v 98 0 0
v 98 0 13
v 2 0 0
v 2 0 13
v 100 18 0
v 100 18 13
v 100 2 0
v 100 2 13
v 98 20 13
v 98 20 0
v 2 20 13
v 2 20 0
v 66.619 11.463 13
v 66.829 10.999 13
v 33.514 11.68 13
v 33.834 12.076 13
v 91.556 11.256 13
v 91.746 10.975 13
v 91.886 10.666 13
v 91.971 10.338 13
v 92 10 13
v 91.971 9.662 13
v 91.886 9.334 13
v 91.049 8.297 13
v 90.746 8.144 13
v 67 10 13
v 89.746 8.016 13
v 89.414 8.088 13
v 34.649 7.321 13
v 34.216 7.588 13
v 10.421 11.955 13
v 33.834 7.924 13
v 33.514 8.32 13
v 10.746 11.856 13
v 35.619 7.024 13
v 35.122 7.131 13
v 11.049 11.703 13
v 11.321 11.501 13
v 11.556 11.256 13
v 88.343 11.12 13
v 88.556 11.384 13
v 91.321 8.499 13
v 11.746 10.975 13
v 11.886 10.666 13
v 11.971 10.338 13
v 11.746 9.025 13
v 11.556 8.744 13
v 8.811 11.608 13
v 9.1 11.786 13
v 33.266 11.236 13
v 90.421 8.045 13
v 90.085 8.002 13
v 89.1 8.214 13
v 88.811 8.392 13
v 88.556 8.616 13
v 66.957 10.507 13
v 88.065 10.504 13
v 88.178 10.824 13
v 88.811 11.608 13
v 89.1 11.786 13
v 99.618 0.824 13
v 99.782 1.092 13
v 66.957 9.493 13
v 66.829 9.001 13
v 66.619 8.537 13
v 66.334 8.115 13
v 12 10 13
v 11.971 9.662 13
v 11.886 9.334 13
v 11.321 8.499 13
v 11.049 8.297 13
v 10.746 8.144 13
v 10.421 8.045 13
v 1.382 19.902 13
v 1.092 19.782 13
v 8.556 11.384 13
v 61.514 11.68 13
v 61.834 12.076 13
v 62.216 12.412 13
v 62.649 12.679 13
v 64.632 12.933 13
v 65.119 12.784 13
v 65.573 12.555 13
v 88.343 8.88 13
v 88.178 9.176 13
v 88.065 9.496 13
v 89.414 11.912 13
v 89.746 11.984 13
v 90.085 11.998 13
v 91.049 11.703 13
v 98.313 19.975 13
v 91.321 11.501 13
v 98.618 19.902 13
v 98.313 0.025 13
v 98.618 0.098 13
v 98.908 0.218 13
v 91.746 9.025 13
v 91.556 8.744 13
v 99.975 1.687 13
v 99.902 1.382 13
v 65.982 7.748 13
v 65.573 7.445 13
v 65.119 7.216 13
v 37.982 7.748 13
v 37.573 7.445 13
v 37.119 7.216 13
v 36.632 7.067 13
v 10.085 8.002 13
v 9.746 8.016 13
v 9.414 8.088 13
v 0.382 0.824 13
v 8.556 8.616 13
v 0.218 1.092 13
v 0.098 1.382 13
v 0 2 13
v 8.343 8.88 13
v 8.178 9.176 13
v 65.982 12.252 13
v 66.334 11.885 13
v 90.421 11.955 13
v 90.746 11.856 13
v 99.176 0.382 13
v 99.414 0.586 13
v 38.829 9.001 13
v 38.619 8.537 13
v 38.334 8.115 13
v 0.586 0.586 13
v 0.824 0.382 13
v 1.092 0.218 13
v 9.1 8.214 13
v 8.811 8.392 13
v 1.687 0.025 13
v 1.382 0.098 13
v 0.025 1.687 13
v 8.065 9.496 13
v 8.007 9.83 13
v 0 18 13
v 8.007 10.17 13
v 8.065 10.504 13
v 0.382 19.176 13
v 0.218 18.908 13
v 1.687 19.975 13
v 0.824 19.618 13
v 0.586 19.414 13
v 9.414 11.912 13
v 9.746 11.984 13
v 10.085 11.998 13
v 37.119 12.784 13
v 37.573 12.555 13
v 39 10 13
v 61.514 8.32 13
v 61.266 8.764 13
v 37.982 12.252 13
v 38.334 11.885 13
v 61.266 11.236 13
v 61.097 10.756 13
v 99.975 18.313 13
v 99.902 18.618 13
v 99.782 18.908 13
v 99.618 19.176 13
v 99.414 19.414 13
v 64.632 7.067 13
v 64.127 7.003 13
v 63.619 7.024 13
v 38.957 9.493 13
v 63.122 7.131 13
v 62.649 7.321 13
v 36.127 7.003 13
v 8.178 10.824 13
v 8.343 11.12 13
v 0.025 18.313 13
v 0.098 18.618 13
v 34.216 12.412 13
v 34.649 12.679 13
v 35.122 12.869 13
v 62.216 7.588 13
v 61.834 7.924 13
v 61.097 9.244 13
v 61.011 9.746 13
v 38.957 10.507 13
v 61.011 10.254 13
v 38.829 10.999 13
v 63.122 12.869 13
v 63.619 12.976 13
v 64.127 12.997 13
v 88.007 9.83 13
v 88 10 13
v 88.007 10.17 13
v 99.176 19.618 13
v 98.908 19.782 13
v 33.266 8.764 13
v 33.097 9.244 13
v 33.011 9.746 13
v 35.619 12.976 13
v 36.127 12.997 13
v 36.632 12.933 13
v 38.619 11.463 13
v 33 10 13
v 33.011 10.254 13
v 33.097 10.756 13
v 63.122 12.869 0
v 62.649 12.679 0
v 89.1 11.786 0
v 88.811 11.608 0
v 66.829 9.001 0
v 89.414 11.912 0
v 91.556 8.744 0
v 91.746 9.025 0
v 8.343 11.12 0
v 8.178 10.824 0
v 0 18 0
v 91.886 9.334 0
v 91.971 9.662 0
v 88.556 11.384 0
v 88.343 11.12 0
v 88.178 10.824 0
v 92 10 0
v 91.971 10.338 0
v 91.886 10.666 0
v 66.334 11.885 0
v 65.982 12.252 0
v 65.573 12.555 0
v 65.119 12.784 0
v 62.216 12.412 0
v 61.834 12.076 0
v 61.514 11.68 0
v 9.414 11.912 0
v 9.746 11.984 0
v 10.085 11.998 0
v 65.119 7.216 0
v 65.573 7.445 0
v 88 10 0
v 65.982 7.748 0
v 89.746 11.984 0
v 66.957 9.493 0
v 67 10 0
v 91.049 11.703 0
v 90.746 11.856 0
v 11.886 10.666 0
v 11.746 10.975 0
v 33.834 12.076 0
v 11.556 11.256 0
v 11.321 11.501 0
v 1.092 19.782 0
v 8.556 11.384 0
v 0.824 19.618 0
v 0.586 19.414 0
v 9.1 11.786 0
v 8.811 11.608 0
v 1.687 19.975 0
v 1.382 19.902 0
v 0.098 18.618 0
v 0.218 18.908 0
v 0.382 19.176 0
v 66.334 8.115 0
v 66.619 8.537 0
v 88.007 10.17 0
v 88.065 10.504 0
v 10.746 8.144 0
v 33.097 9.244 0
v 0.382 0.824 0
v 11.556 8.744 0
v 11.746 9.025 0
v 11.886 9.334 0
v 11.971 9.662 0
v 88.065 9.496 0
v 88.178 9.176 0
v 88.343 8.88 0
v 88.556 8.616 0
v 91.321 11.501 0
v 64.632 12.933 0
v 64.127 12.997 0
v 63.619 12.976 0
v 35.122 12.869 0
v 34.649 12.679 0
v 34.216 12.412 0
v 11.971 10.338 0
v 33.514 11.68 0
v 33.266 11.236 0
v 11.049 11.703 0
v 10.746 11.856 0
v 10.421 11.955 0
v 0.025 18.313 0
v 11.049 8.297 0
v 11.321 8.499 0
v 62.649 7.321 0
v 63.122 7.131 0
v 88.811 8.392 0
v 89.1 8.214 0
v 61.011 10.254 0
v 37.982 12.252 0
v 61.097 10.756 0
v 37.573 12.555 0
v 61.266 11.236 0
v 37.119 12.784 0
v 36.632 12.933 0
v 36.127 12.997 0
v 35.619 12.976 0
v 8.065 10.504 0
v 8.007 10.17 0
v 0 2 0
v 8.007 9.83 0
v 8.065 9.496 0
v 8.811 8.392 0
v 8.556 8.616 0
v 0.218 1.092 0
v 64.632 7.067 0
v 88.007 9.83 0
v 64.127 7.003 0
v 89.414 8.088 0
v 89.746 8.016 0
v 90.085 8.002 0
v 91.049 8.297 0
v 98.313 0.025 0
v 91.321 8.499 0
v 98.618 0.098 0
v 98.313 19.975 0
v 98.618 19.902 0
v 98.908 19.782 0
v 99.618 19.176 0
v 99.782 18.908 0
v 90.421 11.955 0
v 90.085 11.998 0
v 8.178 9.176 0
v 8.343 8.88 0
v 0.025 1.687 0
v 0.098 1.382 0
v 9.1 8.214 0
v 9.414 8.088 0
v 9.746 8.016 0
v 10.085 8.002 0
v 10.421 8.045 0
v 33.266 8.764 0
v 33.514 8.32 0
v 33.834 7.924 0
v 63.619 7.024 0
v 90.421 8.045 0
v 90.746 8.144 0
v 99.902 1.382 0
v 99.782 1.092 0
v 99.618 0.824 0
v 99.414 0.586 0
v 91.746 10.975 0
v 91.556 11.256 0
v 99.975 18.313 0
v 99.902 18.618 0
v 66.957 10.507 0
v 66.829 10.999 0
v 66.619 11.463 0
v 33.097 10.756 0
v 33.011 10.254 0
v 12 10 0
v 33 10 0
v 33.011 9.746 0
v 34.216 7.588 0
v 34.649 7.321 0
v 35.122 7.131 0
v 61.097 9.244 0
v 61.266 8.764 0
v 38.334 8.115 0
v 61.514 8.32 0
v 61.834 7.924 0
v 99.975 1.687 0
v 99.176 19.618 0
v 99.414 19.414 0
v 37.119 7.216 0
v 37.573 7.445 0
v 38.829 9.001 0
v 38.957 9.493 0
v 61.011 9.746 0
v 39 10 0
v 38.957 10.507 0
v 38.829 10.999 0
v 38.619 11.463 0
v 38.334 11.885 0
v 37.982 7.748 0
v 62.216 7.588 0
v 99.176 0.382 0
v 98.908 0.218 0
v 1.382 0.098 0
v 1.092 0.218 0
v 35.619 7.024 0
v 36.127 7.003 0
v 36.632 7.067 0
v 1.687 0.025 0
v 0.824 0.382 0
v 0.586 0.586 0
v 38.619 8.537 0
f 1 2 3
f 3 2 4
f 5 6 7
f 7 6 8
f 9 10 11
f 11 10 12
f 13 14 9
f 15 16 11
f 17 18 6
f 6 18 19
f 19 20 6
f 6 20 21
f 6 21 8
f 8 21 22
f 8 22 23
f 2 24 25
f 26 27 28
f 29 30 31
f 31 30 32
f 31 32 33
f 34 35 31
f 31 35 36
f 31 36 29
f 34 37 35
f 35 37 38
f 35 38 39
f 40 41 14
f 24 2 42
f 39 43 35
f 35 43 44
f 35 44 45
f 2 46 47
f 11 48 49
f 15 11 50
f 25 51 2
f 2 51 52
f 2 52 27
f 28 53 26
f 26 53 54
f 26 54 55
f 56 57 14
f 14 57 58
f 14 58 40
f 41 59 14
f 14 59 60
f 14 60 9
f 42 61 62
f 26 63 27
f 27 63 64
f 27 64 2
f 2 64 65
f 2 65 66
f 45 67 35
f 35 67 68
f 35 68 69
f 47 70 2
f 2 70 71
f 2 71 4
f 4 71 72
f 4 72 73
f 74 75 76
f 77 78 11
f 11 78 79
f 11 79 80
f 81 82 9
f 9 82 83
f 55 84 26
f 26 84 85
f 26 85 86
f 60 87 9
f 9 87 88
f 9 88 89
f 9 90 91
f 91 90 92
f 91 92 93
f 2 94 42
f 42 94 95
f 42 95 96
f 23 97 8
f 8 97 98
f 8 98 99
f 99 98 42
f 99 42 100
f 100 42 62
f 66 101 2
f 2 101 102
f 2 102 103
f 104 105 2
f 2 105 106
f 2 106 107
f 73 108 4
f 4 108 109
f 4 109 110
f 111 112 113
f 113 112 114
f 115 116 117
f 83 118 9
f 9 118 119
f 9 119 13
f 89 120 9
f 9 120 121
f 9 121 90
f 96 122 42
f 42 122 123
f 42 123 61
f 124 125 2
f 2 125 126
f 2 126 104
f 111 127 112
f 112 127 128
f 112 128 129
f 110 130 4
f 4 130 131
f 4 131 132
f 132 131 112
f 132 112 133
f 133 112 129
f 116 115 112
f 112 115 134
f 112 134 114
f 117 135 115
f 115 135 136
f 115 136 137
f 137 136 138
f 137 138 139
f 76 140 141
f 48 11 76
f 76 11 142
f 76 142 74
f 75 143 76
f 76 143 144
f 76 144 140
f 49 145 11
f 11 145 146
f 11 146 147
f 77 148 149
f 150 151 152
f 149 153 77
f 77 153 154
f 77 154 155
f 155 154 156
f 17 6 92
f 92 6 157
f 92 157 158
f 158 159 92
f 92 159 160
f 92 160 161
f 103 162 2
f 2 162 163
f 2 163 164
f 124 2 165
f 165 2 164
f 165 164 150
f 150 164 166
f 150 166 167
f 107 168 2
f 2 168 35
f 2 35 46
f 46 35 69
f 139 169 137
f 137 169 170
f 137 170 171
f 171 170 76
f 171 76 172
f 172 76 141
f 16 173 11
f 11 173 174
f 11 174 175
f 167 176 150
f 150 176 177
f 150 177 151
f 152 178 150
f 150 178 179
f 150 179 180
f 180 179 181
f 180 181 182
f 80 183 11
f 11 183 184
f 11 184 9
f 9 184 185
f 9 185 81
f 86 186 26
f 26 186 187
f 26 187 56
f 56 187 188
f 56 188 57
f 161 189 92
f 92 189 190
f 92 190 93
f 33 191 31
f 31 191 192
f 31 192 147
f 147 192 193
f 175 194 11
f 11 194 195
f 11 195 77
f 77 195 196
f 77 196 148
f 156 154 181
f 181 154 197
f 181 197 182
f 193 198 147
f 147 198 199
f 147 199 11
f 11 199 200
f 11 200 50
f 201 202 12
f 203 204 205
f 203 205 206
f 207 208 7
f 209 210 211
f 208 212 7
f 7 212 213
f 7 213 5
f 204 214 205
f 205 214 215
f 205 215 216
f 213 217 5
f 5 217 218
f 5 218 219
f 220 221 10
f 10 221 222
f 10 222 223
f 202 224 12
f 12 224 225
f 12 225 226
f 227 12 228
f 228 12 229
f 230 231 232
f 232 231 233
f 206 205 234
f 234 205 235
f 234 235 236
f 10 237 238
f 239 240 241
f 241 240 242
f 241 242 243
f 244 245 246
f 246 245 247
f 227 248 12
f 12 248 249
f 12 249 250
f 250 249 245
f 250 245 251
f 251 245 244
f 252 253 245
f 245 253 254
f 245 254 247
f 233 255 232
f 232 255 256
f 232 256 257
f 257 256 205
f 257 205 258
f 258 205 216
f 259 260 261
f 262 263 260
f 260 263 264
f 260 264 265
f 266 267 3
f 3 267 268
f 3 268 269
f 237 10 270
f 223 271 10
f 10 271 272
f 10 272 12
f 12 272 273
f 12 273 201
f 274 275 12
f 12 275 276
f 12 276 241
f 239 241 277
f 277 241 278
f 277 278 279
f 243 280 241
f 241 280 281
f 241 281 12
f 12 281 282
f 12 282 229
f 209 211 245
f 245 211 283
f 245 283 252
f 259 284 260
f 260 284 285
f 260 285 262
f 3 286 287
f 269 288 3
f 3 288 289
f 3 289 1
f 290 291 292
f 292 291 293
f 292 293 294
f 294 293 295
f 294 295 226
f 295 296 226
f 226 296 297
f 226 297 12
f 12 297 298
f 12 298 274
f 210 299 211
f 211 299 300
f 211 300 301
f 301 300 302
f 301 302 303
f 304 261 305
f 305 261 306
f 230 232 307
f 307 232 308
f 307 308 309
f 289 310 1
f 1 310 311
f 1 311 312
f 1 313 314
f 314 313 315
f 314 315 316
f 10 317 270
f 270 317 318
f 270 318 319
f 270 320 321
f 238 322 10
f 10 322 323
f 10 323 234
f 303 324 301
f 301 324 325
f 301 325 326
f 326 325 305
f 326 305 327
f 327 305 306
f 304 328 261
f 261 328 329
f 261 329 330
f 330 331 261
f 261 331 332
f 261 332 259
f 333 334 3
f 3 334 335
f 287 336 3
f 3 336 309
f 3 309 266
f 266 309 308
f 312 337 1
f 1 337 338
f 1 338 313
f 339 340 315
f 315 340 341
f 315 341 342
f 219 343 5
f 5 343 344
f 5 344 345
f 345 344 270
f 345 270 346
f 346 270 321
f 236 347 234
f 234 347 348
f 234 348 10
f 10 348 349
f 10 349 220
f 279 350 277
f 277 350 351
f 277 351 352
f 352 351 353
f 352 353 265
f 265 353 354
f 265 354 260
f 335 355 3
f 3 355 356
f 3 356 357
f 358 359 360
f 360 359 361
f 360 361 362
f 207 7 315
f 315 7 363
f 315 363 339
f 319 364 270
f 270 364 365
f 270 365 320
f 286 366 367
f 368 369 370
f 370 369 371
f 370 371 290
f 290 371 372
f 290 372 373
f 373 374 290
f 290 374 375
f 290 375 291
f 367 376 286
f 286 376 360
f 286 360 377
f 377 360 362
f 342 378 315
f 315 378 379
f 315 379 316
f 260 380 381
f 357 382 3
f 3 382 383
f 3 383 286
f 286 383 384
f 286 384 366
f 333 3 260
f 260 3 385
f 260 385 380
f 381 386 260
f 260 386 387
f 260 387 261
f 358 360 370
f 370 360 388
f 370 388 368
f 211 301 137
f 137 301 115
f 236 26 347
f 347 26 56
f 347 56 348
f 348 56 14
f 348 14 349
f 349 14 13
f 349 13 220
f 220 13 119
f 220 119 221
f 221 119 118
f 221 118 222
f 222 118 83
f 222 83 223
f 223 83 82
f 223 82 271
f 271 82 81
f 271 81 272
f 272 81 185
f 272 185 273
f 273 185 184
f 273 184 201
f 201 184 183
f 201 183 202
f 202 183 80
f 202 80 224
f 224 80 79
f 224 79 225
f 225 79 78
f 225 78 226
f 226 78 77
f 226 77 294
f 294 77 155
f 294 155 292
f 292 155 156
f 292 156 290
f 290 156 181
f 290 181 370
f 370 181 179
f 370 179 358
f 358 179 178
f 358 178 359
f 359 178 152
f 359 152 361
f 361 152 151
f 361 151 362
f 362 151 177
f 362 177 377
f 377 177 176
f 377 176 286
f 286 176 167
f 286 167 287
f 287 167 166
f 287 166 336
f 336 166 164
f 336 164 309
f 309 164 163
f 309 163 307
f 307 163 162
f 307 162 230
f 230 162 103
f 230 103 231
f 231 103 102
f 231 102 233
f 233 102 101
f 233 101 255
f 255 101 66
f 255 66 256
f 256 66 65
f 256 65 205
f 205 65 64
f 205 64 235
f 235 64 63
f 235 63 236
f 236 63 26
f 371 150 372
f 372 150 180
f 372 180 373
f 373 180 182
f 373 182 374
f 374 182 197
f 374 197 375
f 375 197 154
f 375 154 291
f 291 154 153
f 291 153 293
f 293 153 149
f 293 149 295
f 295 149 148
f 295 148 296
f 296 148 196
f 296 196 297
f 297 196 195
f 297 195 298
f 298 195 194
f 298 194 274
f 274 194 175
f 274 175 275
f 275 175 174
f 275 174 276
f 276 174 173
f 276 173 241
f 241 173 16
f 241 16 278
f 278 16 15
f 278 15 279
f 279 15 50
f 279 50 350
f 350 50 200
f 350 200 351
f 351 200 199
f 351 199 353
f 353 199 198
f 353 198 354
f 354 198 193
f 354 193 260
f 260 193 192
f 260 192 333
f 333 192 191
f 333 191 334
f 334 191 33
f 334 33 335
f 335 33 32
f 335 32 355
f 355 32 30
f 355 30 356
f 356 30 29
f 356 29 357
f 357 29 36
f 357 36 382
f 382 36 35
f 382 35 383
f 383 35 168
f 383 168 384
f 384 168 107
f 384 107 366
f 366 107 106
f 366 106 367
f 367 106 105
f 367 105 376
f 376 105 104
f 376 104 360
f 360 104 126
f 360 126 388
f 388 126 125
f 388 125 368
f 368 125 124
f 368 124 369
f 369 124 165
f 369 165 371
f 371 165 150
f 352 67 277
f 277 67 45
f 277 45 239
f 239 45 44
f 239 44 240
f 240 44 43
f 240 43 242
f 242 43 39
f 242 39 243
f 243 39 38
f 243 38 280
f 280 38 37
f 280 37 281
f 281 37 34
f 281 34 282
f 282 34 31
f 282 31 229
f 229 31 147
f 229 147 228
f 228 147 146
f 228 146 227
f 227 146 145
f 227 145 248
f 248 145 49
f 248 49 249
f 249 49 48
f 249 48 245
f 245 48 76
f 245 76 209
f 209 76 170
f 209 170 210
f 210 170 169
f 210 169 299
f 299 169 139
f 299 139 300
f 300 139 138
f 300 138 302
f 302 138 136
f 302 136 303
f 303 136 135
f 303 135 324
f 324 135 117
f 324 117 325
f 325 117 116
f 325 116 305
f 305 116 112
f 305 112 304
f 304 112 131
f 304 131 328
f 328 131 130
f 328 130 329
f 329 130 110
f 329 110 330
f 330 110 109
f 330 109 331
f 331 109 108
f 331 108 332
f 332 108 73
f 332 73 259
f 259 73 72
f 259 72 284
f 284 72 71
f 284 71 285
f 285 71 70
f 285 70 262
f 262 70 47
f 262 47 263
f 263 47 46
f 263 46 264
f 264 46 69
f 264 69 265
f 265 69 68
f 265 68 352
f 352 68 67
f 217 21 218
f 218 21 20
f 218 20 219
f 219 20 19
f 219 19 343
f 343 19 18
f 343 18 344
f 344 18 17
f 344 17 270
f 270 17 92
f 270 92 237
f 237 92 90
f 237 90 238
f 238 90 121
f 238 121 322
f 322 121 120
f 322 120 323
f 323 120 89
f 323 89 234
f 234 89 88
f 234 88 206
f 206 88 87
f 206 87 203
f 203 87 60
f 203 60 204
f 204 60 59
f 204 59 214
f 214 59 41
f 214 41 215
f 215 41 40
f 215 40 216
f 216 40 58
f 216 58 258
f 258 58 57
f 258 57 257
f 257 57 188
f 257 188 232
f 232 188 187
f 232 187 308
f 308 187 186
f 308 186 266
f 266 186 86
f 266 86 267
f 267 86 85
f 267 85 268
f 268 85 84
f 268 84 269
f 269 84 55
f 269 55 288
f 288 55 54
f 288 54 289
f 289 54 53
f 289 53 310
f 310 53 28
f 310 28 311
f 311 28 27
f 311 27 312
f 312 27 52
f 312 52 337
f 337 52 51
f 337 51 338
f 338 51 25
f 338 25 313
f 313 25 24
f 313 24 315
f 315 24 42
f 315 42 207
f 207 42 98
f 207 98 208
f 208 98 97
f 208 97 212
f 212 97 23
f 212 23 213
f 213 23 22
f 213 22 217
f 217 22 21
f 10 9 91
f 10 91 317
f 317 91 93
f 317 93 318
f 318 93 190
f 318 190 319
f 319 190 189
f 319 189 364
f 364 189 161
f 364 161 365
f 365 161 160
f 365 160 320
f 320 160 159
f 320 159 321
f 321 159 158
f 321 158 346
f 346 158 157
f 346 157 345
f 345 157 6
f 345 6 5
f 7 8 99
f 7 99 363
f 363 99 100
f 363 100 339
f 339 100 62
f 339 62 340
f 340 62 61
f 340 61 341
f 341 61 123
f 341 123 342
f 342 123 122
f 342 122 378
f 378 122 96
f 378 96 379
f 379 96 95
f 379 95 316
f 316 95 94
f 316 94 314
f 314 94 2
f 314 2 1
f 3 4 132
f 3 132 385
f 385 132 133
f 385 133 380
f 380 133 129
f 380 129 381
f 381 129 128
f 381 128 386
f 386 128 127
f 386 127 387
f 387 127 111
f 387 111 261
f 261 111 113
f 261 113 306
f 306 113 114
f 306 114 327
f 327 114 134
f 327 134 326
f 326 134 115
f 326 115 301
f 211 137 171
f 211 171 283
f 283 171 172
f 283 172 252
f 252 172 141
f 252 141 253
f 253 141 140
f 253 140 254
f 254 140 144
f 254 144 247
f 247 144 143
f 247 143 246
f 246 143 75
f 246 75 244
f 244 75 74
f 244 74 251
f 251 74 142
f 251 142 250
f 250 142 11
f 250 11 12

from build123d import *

# Parameters (mm, degrees)
SKETCH1_W           = 100
SKETCH1_H           = 20
BOSS_EXTRUDE1_DEPTH = 13
SKETCH2_R           = 3
SKETCH2_R_2         = 2
CUT_EXTRUDE1_DEPTH  = 13
CUT_EXTRUDE2_DEPTH  = 13


with BuildPart() as part:
    # Sketch1 → Boss-Extrude1 (new body)
    with BuildSketch(Plane.XY):
        with Locations((50, 10)):
            Rectangle(SKETCH1_W, SKETCH1_H)
    extrude(amount=BOSS_EXTRUDE1_DEPTH)

    # Sketch2 → Cut-Extrude1 (cut)
    with BuildSketch(Plane.XY.offset(13)):
        with Locations((64, 10)):
            Circle(SKETCH2_R)
        with Locations((36, 10)):
            Circle(SKETCH2_R)
        with Locations((10, 10)):
            Circle(SKETCH2_R_2)
        with Locations((90, 10)):
            Circle(SKETCH2_R_2)
    extrude(amount=-CUT_EXTRUDE1_DEPTH, mode=Mode.SUBTRACT)

    # Sketch3 → Cut-Extrude2 (cut)
    with BuildSketch(Plane.XY.offset(13)):
        with BuildLine():
            ThreePointArc((98, 20), (99.414213562, 19.414213562), (100, 18))
            Line((100, 18), (100, 20))
            Line((100, 20), (98, 20))
        make_face()
        with BuildLine():
            ThreePointArc((100, 2), (99.414213562, 0.585786438), (98, 0))
            Line((98, 0), (100, 0))
            Line((100, 0), (100, 2))
        make_face()
        with BuildLine():
            Line((0, 0), (2, 0))
            ThreePointArc((2, 0), (0.585786438, 0.585786438), (0, 2))
            Line((0, 2), (0, 0))
        make_face()
        with BuildLine():
            Line((0, 20), (0, 18))
            ThreePointArc((0, 18), (0.585786438, 19.414213562), (2, 20))
            Line((2, 20), (0, 20))
        make_face()
    extrude(amount=-CUT_EXTRUDE2_DEPTH, mode=Mode.SUBTRACT)


solid = part.part
